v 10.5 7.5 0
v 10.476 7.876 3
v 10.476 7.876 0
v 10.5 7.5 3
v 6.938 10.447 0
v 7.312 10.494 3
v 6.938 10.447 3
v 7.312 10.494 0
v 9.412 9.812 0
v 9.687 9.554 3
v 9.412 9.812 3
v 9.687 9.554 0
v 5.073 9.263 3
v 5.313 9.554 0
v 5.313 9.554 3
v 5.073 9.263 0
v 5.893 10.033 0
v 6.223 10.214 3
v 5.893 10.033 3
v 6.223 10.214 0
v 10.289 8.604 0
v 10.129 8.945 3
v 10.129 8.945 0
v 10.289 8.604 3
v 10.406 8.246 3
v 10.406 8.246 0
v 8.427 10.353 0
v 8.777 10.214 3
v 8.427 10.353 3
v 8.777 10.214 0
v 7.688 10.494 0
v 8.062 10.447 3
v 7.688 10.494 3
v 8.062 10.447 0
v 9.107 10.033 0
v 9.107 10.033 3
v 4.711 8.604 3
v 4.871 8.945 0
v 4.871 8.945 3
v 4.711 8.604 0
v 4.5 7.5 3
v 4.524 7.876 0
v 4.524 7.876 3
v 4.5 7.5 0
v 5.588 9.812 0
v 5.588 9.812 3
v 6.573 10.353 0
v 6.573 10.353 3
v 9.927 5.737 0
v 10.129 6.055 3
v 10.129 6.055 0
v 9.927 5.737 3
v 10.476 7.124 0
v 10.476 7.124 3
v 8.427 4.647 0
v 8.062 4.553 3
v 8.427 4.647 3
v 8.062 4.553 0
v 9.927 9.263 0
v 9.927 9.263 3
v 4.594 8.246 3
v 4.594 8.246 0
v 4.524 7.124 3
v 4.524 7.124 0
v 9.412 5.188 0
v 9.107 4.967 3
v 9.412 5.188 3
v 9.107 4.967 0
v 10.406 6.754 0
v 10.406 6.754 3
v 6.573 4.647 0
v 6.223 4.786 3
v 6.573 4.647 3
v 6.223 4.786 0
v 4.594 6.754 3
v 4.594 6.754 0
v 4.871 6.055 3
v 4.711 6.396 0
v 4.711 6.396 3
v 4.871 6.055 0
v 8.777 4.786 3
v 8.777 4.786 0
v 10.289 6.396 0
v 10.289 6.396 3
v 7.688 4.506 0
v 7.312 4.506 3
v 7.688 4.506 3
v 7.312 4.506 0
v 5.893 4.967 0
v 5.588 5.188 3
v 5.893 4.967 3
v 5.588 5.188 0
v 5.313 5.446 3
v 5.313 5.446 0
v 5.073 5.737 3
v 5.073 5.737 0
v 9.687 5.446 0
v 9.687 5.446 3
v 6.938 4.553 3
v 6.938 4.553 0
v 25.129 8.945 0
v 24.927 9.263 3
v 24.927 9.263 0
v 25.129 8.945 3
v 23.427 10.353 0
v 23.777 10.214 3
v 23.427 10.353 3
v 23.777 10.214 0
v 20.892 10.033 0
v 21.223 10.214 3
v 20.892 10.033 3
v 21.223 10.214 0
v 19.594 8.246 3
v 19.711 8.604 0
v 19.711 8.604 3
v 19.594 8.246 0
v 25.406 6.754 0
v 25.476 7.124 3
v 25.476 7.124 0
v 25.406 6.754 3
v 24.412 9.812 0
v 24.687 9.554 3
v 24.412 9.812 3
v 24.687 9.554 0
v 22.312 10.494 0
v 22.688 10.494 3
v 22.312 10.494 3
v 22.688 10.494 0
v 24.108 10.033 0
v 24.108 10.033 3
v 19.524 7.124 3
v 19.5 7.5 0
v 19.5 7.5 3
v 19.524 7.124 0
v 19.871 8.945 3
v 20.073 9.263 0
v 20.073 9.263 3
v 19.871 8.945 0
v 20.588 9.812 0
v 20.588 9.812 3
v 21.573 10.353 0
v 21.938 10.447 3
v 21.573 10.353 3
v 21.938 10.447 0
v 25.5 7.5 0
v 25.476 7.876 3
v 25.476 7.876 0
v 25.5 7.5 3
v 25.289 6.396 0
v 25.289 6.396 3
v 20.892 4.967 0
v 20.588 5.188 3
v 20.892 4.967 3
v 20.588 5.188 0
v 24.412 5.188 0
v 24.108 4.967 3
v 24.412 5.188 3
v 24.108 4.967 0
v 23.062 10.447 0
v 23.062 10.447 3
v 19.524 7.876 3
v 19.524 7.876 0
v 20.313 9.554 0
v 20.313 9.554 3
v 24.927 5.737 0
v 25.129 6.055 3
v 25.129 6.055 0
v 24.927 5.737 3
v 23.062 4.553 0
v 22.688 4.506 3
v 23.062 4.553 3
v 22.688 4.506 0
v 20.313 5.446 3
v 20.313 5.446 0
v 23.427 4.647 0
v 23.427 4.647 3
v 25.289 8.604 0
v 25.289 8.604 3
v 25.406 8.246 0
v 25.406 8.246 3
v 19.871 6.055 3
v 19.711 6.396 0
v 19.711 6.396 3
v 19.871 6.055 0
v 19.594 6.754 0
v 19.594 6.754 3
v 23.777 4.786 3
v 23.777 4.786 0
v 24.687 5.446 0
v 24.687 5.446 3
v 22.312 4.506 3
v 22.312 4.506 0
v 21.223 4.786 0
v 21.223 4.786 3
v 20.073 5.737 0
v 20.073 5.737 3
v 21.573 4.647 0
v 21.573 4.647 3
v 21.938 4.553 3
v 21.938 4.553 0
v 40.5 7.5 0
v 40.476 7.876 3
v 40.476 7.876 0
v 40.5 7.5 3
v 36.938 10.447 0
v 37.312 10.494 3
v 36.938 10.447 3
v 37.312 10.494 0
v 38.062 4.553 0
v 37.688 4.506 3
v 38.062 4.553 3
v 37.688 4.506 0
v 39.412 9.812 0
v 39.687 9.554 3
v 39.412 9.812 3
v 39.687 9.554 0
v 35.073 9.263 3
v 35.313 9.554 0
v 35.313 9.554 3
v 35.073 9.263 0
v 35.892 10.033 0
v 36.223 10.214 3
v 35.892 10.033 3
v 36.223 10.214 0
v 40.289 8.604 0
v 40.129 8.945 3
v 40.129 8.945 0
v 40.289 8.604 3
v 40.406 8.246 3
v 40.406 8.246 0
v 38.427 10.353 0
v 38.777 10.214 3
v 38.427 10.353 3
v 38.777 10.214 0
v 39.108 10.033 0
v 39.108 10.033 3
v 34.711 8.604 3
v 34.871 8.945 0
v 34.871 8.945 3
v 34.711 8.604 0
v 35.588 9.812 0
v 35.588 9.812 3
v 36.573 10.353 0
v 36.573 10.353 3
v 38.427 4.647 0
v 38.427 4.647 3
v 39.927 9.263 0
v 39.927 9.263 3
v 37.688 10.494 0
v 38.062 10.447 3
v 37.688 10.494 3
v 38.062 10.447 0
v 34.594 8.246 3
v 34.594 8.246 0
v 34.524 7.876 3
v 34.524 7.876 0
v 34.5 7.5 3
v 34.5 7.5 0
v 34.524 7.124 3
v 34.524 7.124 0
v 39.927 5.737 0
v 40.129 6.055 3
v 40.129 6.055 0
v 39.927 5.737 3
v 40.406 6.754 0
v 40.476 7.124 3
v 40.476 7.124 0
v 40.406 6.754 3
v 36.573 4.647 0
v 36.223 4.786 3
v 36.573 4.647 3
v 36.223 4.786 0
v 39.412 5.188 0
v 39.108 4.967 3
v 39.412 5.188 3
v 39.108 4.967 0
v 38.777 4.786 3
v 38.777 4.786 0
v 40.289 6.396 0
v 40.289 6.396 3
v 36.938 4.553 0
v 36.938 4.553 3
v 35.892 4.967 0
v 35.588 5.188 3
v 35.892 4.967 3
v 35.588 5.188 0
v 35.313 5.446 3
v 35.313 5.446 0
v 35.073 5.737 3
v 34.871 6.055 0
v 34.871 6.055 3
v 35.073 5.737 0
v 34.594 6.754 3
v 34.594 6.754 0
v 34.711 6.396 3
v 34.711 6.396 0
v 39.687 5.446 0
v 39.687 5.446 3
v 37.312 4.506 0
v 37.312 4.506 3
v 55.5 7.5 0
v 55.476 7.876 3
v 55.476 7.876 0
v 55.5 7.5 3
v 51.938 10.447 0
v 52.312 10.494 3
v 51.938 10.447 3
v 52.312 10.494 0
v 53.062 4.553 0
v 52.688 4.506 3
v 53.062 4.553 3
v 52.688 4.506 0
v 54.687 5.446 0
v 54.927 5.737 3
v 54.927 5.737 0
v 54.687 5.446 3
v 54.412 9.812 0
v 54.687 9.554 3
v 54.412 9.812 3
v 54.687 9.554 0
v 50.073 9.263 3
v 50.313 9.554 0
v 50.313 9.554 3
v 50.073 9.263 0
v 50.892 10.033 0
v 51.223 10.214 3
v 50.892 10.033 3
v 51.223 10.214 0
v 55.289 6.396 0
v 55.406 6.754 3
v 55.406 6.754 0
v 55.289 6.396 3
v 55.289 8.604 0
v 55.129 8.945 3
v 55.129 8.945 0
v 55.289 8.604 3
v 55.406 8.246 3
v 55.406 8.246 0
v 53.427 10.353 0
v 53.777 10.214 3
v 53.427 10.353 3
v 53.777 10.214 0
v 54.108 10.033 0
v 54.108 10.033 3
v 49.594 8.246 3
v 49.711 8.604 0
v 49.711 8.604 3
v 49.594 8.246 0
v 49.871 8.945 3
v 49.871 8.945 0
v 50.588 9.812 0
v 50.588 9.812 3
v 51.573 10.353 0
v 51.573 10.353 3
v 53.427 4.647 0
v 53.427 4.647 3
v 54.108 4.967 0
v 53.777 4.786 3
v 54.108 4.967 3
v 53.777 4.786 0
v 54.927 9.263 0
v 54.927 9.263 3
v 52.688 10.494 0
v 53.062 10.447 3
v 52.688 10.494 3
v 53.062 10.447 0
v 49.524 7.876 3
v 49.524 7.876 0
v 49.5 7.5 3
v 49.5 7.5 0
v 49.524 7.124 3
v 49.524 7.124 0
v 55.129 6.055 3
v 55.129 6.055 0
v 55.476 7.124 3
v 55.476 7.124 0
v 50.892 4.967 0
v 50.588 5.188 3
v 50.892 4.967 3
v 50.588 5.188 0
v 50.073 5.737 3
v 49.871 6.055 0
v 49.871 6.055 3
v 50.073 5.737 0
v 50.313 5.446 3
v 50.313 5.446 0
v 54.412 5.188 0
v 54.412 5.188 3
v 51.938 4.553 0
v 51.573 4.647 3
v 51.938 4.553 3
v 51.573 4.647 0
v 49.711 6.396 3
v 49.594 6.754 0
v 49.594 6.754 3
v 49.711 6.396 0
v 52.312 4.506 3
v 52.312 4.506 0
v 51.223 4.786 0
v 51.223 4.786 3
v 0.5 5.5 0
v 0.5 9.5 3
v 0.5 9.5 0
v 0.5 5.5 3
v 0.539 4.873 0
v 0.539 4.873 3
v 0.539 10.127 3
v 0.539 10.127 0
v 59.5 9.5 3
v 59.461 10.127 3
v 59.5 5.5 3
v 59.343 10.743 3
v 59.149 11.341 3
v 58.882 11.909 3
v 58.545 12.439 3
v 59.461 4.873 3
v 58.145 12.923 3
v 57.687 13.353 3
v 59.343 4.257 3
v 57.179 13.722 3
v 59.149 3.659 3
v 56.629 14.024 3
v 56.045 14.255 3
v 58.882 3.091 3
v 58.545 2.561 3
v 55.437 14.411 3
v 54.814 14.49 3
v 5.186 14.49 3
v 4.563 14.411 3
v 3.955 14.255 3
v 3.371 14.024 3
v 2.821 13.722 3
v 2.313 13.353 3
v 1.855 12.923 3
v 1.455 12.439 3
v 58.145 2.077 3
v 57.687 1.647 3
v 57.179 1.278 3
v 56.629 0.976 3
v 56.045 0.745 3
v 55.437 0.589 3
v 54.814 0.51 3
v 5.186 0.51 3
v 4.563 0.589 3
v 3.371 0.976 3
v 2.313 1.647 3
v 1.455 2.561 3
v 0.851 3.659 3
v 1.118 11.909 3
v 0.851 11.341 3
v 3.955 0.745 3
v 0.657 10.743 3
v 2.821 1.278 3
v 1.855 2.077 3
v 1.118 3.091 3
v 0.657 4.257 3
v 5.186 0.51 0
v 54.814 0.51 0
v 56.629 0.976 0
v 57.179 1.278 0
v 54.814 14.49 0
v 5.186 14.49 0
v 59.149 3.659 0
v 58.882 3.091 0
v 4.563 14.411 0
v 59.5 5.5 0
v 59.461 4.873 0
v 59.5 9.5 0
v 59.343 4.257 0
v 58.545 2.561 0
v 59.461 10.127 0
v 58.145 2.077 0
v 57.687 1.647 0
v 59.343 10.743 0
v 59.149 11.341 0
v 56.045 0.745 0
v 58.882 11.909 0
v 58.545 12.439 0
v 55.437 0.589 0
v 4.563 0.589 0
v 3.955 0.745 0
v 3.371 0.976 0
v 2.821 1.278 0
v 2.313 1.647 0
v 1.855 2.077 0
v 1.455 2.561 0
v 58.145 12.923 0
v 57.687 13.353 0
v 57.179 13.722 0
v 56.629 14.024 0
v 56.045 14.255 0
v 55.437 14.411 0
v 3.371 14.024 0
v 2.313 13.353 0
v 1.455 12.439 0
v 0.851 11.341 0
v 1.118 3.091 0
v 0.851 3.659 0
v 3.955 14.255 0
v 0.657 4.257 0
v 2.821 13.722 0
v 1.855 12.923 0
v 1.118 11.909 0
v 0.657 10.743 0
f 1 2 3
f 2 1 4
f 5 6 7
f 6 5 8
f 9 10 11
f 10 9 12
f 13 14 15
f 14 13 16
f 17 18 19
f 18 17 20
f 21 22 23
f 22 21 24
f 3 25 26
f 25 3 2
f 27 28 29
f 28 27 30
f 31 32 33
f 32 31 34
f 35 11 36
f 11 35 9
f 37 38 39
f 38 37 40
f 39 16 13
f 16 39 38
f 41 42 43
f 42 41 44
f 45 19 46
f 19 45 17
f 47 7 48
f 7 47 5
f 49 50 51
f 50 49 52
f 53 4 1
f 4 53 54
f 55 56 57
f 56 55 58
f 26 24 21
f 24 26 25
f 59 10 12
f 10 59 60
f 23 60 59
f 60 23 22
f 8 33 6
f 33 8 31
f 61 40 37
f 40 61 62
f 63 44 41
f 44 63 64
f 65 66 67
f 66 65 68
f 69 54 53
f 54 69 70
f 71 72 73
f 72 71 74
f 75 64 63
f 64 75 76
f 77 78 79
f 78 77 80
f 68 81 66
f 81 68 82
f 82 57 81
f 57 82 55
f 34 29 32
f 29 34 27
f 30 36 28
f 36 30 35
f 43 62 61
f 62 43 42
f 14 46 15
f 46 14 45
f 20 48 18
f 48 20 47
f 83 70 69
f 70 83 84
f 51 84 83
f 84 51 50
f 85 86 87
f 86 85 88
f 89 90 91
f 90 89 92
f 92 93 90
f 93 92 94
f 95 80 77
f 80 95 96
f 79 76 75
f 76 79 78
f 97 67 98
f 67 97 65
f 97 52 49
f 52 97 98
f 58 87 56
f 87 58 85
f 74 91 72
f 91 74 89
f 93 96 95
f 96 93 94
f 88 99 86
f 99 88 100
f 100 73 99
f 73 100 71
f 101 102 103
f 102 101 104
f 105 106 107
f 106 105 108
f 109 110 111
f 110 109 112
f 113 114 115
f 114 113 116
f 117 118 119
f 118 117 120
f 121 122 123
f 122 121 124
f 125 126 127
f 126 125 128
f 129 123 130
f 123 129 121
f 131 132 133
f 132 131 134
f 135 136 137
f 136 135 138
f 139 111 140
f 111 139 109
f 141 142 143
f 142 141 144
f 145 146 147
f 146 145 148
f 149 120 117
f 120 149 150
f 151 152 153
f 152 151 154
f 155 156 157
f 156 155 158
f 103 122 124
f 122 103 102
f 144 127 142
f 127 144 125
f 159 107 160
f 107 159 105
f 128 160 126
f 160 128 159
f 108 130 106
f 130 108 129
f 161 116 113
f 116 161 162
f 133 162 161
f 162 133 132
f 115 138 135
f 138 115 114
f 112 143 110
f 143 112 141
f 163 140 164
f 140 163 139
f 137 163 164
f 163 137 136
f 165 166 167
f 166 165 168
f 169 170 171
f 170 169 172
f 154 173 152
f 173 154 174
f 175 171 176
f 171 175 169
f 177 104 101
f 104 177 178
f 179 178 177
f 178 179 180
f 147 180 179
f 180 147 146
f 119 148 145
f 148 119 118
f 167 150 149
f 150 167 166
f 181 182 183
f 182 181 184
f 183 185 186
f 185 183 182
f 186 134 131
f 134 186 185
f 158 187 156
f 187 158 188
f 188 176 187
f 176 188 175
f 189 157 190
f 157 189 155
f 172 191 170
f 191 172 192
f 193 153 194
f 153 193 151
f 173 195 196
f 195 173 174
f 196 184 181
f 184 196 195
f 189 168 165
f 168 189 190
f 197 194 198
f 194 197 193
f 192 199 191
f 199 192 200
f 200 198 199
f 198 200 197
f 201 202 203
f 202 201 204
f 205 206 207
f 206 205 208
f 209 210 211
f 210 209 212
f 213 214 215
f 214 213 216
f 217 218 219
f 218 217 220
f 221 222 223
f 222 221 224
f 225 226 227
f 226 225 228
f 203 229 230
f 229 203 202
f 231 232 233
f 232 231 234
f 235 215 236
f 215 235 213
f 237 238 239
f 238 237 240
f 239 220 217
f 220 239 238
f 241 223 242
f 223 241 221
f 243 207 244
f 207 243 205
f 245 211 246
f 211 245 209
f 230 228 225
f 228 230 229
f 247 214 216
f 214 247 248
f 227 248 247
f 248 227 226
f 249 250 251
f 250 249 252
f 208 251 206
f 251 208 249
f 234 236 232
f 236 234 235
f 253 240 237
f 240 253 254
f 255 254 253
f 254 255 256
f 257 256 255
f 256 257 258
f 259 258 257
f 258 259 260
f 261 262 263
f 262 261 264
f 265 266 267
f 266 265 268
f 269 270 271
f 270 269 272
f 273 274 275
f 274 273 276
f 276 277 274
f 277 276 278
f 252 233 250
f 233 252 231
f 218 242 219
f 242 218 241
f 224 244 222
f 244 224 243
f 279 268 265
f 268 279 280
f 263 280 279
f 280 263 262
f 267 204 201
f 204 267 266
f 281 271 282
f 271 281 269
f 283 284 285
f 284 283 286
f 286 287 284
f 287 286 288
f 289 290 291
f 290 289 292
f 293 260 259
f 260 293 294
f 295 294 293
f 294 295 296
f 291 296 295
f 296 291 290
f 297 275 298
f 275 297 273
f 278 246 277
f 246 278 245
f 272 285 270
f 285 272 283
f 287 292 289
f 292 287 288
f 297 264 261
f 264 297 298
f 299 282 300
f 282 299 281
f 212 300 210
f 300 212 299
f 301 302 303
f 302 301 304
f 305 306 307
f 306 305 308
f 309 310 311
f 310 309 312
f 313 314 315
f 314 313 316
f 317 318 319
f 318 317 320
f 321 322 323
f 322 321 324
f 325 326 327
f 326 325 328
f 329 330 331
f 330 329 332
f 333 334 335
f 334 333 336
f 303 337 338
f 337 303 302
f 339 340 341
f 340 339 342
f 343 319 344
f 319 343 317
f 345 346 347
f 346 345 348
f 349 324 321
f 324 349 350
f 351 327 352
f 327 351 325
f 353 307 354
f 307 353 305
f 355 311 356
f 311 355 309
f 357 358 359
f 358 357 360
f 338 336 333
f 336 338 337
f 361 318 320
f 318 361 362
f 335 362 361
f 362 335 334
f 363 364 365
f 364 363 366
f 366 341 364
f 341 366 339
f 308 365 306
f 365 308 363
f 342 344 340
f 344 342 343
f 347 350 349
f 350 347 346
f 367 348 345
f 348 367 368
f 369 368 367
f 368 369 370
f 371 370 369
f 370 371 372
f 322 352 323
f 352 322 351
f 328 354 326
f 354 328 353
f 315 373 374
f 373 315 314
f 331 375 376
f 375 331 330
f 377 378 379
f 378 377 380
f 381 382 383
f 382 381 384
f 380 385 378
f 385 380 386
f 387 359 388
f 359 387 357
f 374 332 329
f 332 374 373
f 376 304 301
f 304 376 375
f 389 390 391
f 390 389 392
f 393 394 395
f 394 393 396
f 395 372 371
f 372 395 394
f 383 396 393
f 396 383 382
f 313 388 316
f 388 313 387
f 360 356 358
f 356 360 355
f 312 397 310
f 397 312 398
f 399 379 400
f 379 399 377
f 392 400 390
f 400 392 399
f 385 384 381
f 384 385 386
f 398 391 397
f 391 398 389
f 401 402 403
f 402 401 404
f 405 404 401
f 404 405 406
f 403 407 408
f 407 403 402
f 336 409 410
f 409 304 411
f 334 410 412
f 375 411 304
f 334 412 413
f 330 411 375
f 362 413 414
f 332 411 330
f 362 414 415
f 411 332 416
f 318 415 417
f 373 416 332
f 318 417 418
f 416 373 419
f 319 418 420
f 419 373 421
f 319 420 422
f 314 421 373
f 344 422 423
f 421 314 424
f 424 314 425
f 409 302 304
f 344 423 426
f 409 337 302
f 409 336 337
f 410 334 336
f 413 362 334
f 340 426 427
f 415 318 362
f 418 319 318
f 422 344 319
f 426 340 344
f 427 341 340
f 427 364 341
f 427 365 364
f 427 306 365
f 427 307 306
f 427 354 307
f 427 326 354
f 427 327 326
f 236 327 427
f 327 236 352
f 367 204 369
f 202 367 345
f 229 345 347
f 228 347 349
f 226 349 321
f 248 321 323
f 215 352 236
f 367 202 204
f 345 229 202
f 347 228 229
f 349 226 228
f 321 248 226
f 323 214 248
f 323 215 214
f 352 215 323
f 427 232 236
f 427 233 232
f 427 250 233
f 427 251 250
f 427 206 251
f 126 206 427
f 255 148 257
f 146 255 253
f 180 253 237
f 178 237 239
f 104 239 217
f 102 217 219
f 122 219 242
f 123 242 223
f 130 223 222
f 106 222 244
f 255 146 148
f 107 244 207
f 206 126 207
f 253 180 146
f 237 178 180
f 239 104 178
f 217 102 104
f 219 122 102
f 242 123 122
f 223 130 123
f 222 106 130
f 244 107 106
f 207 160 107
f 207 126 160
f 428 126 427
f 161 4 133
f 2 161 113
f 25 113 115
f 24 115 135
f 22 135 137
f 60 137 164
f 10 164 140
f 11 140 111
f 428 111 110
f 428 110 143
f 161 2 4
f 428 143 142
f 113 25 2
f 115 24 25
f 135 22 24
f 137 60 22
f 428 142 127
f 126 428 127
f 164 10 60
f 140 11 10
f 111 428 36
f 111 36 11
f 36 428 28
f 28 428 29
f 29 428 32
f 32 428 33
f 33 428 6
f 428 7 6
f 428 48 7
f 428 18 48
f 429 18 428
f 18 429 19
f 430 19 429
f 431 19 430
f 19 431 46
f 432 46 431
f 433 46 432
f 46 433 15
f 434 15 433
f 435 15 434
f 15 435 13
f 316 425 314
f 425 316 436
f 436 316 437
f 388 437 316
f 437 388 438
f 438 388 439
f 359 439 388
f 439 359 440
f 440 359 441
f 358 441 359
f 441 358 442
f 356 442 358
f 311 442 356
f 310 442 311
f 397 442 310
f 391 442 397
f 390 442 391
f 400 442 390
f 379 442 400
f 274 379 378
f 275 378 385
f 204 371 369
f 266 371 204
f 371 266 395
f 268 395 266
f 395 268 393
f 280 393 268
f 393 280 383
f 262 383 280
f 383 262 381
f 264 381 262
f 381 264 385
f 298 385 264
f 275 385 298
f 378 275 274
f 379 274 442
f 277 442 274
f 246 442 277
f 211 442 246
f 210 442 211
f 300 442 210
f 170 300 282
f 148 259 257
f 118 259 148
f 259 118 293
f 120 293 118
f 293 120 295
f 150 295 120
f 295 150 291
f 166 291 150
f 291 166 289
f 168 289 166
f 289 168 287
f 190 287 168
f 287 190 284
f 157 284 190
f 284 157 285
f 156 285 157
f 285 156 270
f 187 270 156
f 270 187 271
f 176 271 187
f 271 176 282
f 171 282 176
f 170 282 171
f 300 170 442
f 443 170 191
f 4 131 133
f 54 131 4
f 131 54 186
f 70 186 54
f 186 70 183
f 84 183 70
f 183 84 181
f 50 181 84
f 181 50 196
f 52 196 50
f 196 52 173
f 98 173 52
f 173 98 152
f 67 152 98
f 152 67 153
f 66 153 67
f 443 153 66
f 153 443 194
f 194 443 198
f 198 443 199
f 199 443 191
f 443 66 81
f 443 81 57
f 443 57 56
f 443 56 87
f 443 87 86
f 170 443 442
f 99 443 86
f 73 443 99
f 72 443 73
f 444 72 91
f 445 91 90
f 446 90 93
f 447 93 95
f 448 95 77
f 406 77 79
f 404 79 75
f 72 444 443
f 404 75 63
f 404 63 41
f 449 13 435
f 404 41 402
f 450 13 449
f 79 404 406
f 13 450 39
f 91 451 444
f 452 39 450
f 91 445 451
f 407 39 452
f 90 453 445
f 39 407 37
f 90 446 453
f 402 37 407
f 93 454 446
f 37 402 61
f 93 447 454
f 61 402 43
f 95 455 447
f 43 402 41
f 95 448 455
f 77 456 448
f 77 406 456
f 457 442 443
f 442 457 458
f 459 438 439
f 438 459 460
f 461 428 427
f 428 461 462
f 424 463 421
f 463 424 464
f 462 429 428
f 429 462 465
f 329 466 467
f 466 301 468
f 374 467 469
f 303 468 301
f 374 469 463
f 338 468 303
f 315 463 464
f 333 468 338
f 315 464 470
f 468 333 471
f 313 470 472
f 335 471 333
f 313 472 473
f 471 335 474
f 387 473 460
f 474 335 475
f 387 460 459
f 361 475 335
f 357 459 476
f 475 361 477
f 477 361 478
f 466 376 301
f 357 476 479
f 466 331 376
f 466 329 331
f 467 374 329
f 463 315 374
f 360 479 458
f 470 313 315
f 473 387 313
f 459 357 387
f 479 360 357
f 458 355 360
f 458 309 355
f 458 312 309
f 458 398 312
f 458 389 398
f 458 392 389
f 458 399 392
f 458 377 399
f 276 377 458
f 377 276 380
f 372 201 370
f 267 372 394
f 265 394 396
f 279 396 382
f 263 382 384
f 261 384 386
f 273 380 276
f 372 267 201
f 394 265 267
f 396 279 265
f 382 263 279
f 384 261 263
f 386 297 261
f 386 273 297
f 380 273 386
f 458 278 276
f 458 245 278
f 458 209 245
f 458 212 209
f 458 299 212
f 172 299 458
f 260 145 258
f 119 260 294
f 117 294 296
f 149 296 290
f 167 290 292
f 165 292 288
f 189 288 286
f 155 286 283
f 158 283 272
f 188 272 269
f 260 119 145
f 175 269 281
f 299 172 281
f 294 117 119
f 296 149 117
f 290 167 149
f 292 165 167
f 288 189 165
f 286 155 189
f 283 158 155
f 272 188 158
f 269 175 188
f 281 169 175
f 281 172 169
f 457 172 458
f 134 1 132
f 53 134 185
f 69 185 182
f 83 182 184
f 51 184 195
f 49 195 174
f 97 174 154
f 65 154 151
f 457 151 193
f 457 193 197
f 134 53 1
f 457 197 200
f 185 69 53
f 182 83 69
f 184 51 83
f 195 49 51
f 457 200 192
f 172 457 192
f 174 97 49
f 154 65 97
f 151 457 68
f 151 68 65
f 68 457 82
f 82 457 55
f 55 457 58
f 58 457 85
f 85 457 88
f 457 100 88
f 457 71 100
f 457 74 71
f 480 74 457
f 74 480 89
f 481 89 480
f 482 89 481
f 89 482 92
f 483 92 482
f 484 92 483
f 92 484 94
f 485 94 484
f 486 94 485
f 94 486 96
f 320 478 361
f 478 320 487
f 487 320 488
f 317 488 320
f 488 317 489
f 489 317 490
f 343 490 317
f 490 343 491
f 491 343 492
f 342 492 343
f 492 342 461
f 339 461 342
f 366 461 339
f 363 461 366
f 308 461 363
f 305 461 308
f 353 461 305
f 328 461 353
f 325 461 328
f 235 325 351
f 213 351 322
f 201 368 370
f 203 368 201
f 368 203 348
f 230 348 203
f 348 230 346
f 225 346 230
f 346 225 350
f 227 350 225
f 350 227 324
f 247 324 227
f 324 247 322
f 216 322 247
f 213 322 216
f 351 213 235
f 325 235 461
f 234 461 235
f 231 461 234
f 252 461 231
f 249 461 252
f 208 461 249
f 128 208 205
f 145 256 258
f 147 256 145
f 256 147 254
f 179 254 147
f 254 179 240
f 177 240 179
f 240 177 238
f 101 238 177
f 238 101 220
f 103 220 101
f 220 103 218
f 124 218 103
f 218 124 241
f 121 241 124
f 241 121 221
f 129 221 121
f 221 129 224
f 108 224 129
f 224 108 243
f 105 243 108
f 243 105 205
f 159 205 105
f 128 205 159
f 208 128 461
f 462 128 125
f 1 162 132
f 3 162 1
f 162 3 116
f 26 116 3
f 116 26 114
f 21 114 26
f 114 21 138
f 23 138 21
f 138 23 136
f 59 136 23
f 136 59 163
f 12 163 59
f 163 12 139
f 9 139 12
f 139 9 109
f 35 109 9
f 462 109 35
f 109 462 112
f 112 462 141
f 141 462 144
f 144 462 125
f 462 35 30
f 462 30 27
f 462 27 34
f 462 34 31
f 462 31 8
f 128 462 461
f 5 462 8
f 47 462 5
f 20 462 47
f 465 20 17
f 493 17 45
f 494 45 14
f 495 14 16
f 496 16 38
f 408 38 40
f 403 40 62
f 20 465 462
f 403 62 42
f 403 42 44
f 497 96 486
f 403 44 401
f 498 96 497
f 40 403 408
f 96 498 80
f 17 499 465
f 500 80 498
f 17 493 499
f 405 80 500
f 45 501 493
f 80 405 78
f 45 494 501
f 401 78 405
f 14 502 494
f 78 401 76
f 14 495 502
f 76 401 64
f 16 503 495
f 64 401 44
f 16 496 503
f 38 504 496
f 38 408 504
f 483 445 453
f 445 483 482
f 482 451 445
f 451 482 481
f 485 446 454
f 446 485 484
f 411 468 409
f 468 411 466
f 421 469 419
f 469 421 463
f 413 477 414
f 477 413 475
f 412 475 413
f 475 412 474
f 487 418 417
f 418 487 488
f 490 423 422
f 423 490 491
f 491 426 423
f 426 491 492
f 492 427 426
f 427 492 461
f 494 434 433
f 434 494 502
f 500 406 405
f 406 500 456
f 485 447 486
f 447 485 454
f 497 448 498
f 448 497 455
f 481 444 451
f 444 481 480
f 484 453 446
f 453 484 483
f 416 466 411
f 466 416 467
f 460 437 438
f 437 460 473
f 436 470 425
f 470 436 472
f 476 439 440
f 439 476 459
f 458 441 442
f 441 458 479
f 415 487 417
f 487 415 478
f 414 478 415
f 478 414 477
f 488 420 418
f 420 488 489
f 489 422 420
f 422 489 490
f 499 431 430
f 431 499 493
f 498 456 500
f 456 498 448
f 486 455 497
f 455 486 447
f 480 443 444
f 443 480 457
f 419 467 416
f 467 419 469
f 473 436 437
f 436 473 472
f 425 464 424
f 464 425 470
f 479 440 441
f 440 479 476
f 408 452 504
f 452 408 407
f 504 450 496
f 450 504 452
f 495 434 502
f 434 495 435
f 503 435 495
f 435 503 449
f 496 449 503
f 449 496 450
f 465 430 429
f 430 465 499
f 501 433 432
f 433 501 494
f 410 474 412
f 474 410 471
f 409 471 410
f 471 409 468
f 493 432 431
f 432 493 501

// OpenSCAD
// Generated by SolidPython 1.1.3 on 2023-01-09 14:55:16
$fn = 50;


difference() {
	union() {
		translate(v = [30.0000000000, 7.5000000000, 0]) {
			rotate(a = [0, 0, 0]) {
				hull() {
					translate(v = [-24.5000000000, 2.0000000000, 0]) {
						rotate(a = [0, 0, 0]) {
							translate(v = [0, 0, 0]) {
								rotate(a = [0, 0, 0]) {
									cylinder(h = 3, r = 5);
								}
							}
						}
					}
					translate(v = [24.5000000000, 2.0000000000, 0]) {
						rotate(a = [0, 0, 0]) {
							translate(v = [0, 0, 0]) {
								rotate(a = [0, 0, 0]) {
									cylinder(h = 3, r = 5);
								}
							}
						}
					}
					translate(v = [-24.5000000000, -2.0000000000, 0]) {
						rotate(a = [0, 0, 0]) {
							translate(v = [0, 0, 0]) {
								rotate(a = [0, 0, 0]) {
									cylinder(h = 3, r = 5);
								}
							}
						}
					}
					translate(v = [24.5000000000, -2.0000000000, 0]) {
						rotate(a = [0, 0, 0]) {
							translate(v = [0, 0, 0]) {
								rotate(a = [0, 0, 0]) {
									cylinder(h = 3, r = 5);
								}
							}
						}
					}
				}
			}
		}
	}
	union() {
		translate(v = [7.5000000000, 7.5000000000, 0]) {
			rotate(a = [0, 0, 0]) {
				translate(v = [0, 0, -50]) {
					rotate(a = [0, 0, 0]) {
						cylinder(h = 100, r = 3.0000000000);
					}
				}
			}
		}
		translate(v = [22.5000000000, 7.5000000000, 0]) {
			rotate(a = [0, 0, 0]) {
				translate(v = [0, 0, -50]) {
					rotate(a = [0, 0, 0]) {
						cylinder(h = 100, r = 3.0000000000);
					}
				}
			}
		}
		translate(v = [37.5000000000, 7.5000000000, 0]) {
			rotate(a = [0, 0, 0]) {
				translate(v = [0, 0, -50]) {
					rotate(a = [0, 0, 0]) {
						cylinder(h = 100, r = 3.0000000000);
					}
				}
			}
		}
		translate(v = [52.5000000000, 7.5000000000, 0]) {
			rotate(a = [0, 0, 0]) {
				translate(v = [0, 0, -50]) {
					rotate(a = [0, 0, 0]) {
						cylinder(h = 100, r = 3.0000000000);
					}
				}
			}
		}
	}
}
/***********************************************
*********      SolidPython code:      **********
************************************************
 
from solid import *
import os
import subprocess

import oomB

import opsc_library_gen

mode = "laser"
#mode = "3d_print"

defined_objects = {}

radius_dict = {}
countersunk_dict = {}


def set_mode(m):
    global mode
    mode = m
    radius_dict['M6'] = 6.5/2
    radius_dict['M3'] = 3.3/2
    if mode == "laser":
        radius_dict['M6'] = 6/2
        radius_dict['M3'] = 3/2

    countersunk_dict['M3'] = {}
    countersunk_dict['M3']['little_rad'] = radius_dict['M3']
    countersunk_dict['M3']['big_rad'] = (5.5+0.6)/2
    if mode == "laser":
        countersunk_dict['M3']['big_rad'] = (4.75+0.6)/2
        countersunk_dict['M3']['little_rad'] = (4.75+0.6)/2

    countersunk_dict['M3']['height'] = 1.7


def opsc_make_object(filename, objects, save_type="none",resolution=50, layers = 1, tilediff = 200, mode="laser"):
    set_mode(mode)
    save_type = save_type.lower()
    os.makedirs(os.path.dirname(filename), exist_ok=True)
    final_object = opsc_get_object(objects)
    # Save the final object to the specified filename    
    scad_render_to_file(final_object, filename, file_header='$fn = %s;' % resolution, include_orig_code=True)
    if mode == "laser":
        filename_laser = filename.replace(".scad","-flat.scad")
        scad_render_to_file(getLaser(final_object, layers=layers, tilediff=tilediff), filename_laser, file_header='$fn = %s;' % resolution, include_orig_code=True)
        if save_type == "all":
            saveToAll(filename_laser)
        elif save_type == "dxf":
            saveToDxf(filename_laser)
    if save_type == "all":
        saveToAll(filename)
    elif save_type == "dxf":
        saveToDxf(filename)


def opsc_get_object(objects):
    # Create the solidpython objects
    positive_objects = [get_opsc_item(obj) for obj in objects if obj['type'] == 'positive']
    negative_objects = [get_opsc_item(obj) for obj in objects if obj['type'] == 'negative']
    # Union the positive objects
    positive_object = union()(*positive_objects)
    # Union the negative objects
    negative_object = union()(*negative_objects)
    # Create the final object by subtracting the negative objects from the positive objects
    return difference()(positive_object, negative_object)

def get_opsc_item(params):
    # A dictionary to map radius string values to numerical values
    #radius_dict = {'small': 5, 'medium': 10, 'large': 15}
    # An array of function names for basic shapes
    basic_shapes = ['cube', 'sphere', 'cylinder']
    
    # An array of function names for other shapes
    other_shapes = ['hole', 'slot', 'rounded_rectangle', 'countersunk']
    


    # Convert radius to r if present, and remove radius from the params dictionary
    if 'radius' in params:
        if isinstance(params['radius'], str):
            # Use the radius_dict to map the radius string value to a numerical value
            params['r'] = radius_dict[params['radius']]
        else:
            params['r'] = params['radius']
        del params['radius']
    

    # Check if the object type is a basic shape
    if params['shape'] in basic_shapes:
        # Remove shape and unexpected dictionary values
        allowed_keys = {'size', 'r', 'r1', 'r2', 'd', 'h', 'rw', 'rh', 'dw', 'dh'}
        shape_params = {k: v for k, v in params.items() if k in allowed_keys}

        # Call the corresponding function for the shape parameter, using ** notation to pass the shape_params dictionary as keyword arguments
        return get_opsc_transform(params,globals()[params['shape']](**shape_params))
    
    # If the object type is not a basic shape, check if it's a defined object or one of the other shapes
    elif params['shape'] in other_shapes:
        # Call the corresponding function for the shape parameter, passing the params dictionary as an argument
        p2 = copy.deepcopy(params)
        p2["pos"] = [0,0,0]
        return get_opsc_transform(params,globals()[params['shape']](p2))
    
    # If the object is not a basic shape or a defined object, try to import it from a .scad file
    else:
        obj = defined_objects[params['shape']]
        return get_opsc_transform(params,obj)

def get_opsc_transform(params, solid_obj):
    # Rotate the object based on the 'rot' field in the params dictionary, or the 'rotX', 'rotY', and 'rotZ' fields if 'rot' is not present
    rot = params.get('rot', [])
    if rot:
        rotX, rotY, rotZ = rot
    else:
        rotX = params.get('rotX', 0)
        rotY = params.get('rotY', 0)
        rotZ = params.get('rotZ', 0)
    solid_obj = rotate([rotX, rotY, rotZ])(solid_obj)

    # Translate the object based on the 'pos' field in the params dictionary, or the 'x', 'y', and 'z' fields if 'pos' is not present
    pos = params.get('pos', [])
    if pos:
        x, y, z = pos
    else:
        x = params.get('x', 0)
        y = params.get('y', 0)
        z = params.get('z', 0)
    solid_obj = translate([x, y, z])(solid_obj)
    return solid_obj


import random

def opsc_easy_array(type, shape, repeats, pos_start, shift_arr, **kwargs):
    for i in range(0,3):
        repeats.append(1)
        pos_start.append(0)
        shift_arr.append(0)
    return_objects = []

    for x in range(0,repeats[0]):
        for y in range(0,repeats[1]):
            for z in range(0,repeats[2]):
                return_objects.append(opsc_easy(type, shape, pos=[pos_start[0]+x*shift_arr[0],pos_start[1]+y*shift_arr[1],pos_start[2]+z*shift_arr[2]], **kwargs))
    return return_objects                



def opsc_easy(type, shape, **kwargs):
    obj = {
        'type': type,
        'shape': shape
    }
    for param in ['size', 'r', 'r1', 'r2', 'd', 'h', 'rw', 'rh', 'dw', 'dh', 'pos', 'x', 'y', 'z', 'rot', 'rotX', 'rotY', 'rotZ', "w"]:
        if param in kwargs:
            obj[param] = kwargs[param]
    return obj

def hole(params):
    p2 = copy.deepcopy(params)  
    # Check if the radius is a string and replace it with the corresponding value from the dictionary
    if isinstance(p2['r'], str):
        p2['r'] = radius_dict[p2['r']]
    
    # Set the height to 100 if not specified
    if 'h' not in p2:
        p2['h'] = 100
        p2["pos"] = [0,0,-50]
    p2["center"] = True
    # Create the cylinder object
    p2["shape"] = "cylinder"
    p2["type"] = "positive"

    return get_opsc_item(p2)

import copy

def countersunk(params):
    p2 = copy.deepcopy(params)
    counter_rad = p2['r']
    p2['r'] = radius_dict[p2['r']]
    hp = copy.deepcopy(p2)
    hp["type"] = "positive"
    hp["shape"] = "hole"
    del hp["rot"]
    hol = get_opsc_item(hp)
    
    cp = copy.deepcopy(p2)
    cp["h"] = countersunk_dict[counter_rad]["height"]
    cp["r2"] = countersunk_dict[counter_rad]["little_rad"]
    cp["r1"] = countersunk_dict[counter_rad]["big_rad"]
    del cp["r"]
    del cp["rot"]
    cp["type"] = "positive"
    cp["shape"] = "cylinder"
    cp["pos"] = [0,0,0]

    top = get_opsc_item(cp)
    return union()(hol,top)



def slot(params):  
    p2 = copy.deepcopy(params) 
    if isinstance(p2['r'], str):
        p2['r'] = radius_dict[p2['r']]
    p2["type"] = "positive"
    p2["shape"] = "hole"
    del p2["rot"]
    p2["pos"] = [0,0,0]
    left = copy.deepcopy(p2)
    right = copy.deepcopy(p2)
    left["pos"][0] = p2["w"] / 2 - p2["r"] 
    
    right["pos"][0] = -p2["w"] / 2 + p2["r"] 
    pass
    leftObj = get_opsc_item(left)
    rightObj = get_opsc_item(right)
    return hull()(leftObj, rightObj)

def rounded_rectangle(params):   
    p2 = copy.deepcopy(params) 
    p2["h"] = p2["size"][2]
    p2["pos"] = p2.get("pos", [0, 0, 0]) 
    p2["type"] = "positive"
    p2["shape"] = "hole"
    p2["pos"] = [0,0,0]
    
    if 'rot' in p2:
        del p2["rot"]   
    if 'r' not in p2:
        p2["r"] = 5 
    tl = copy.deepcopy(p2)
    tr = copy.deepcopy(p2)
    bl = copy.deepcopy(p2)
    br = copy.deepcopy(p2)
    tl["pos"][0] = -(p2["size"][0] - p2["r"]*2)/2
    tl["pos"][1] = (p2["size"][1] - p2["r"]*2)/2
    tr["pos"][0] = (p2["size"][0] - p2["r"]*2)/2
    tr["pos"][1] = (p2["size"][1] - p2["r"]*2)/2
    bl["pos"][0] = -(p2["size"][0] - p2["r"]*2)/2
    bl["pos"][1] = -(p2["size"][1] - p2["r"]*2)/2
    br["pos"][0] = (p2["size"][0] - p2["r"]*2)/2
    br["pos"][1] = -(p2["size"][1] - p2["r"]*2)/2
    del tl["size"]
    del tr["size"]
    del bl["size"]
    del br["size"]
    tlo = get_opsc_item(tl)
    tro = get_opsc_item(tr)
    blo = get_opsc_item(bl)
    bro = get_opsc_item(br)    
    return hull()(tlo, tro, blo, bro)



def import_scad_object(filename):
    # Import the .scad file and convert it to a solidpython object
    #filename = "parts"
    obj = import_scad(filename)
    return obj.main()
    


import os
import solid as solidpython

# A dictionary to store the defined objects


def load_scad_objects():
    opsc_library_gen.gen_library(defined_objects)

import random

def test(num_objects):
    objects = []
    for i in range(num_objects):
        # Choose a random shape
        #shape = random.choice(['cube', 'sphere', 'cylinder', 'hole', 'slot', "rounded_rectangle"])
        shape = random.choice(["rounded_rectangle"])

        # Choose a random type
        type = random.choice(['positive', 'negative'])
        
        # Create an empty object dictionary
        obj = {'shape': shape, 'type': type}
        
        # Set shape-specific parameters
        if obj['shape'] in ['cube']:
            obj['size'] =  [random.uniform(5, 15), random.uniform(5, 15), random.uniform(5, 15)]
        if obj['shape'] in ['rounded_rectangle']:
            obj['size'] =  [random.uniform(5, 15), random.uniform(5, 15), random.uniform(5, 15)]
            obj['r'] = random.uniform(0.5, 5)
        elif obj['shape'] == 'sphere':
            obj['r'] = random.uniform(5, 15)
        elif obj['shape'] in ['cylinder', 'hole']:
            obj['r'] = random.uniform(0.5, 5)
            obj['h'] = random.uniform(5, 15)
        elif obj['shape'] == 'slot':
            obj['r'] = random.uniform(0.5, 5)
            obj['h'] = random.uniform(5, 15)
            obj['w'] = random.uniform(5, 15)
        
        # Set a random position and rotation
        obj['pos'] = [random.uniform(-20, 20), random.uniform(-20, 20), random.uniform(-20, 20)]
        obj['rot'] = [random.uniform(-180, 180), random.uniform(-180, 180), random.uniform(-180, 180)]
        
        # Add the object to the list
        objects.append(obj)
    return objects

####### old file saving
def saveToAll(fileIn):
    saveToDxf(fileIn)
    saveToPng(fileIn)
    saveToStl(fileIn)
    saveToSvg(fileIn)

def saveToDxf(fileIn, fileOut="", copy_to_laser=True):
    if fileOut == "":
        fileOut = fileIn.replace(".scad",".dxf")
    saveToFile(fileIn, fileOut)


    
def saveToPng(fileIn, fileOut="",extra="--render"):
    if fileOut == "":
        fileOut = fileIn.replace(".scad",".png")
    saveToFile(fileIn, fileOut)

def saveToStl(fileIn, fileOut=""):
    if fileOut == "":
        fileOut = fileIn.replace(".scad",".stl")
    saveToFile(fileIn, fileOut)
    
def saveToSvg(fileIn, fileOut=""):
    if fileOut == "":
        fileOut = fileIn.replace(".scad",".svg")
    saveToFile(fileIn, fileOut)

def saveToFile(fileIn, fileOut,extra=""):
    #extra = extra + " --colorscheme Tomorrow"

    launchStr = 'openscad -o "' + fileOut + '"' + extra + ' "' + fileIn + '"'
    if ".png" in fileOut:
        launchStr = launchStr + " --render"
    print("            saveToFile launch string: " + launchStr)
    subprocess.run(launchStr)
    x=0

def getLaser(final_object,start=1.5,layers=1,thickness=3,tilediff=200):
        rv= []

        for x in range(layers):
            rv.append(translate([0,x*tilediff,0])(
                    projection()(
                        intersection()(translate([-500,-500,start+x*thickness])(cube(size=[1000,1000,0.1])),
                            final_object
                        )
                    )
            )
            )
            
        return union()(rv)

set_mode("laser")
load_scad_objects() 
 
************************************************/
